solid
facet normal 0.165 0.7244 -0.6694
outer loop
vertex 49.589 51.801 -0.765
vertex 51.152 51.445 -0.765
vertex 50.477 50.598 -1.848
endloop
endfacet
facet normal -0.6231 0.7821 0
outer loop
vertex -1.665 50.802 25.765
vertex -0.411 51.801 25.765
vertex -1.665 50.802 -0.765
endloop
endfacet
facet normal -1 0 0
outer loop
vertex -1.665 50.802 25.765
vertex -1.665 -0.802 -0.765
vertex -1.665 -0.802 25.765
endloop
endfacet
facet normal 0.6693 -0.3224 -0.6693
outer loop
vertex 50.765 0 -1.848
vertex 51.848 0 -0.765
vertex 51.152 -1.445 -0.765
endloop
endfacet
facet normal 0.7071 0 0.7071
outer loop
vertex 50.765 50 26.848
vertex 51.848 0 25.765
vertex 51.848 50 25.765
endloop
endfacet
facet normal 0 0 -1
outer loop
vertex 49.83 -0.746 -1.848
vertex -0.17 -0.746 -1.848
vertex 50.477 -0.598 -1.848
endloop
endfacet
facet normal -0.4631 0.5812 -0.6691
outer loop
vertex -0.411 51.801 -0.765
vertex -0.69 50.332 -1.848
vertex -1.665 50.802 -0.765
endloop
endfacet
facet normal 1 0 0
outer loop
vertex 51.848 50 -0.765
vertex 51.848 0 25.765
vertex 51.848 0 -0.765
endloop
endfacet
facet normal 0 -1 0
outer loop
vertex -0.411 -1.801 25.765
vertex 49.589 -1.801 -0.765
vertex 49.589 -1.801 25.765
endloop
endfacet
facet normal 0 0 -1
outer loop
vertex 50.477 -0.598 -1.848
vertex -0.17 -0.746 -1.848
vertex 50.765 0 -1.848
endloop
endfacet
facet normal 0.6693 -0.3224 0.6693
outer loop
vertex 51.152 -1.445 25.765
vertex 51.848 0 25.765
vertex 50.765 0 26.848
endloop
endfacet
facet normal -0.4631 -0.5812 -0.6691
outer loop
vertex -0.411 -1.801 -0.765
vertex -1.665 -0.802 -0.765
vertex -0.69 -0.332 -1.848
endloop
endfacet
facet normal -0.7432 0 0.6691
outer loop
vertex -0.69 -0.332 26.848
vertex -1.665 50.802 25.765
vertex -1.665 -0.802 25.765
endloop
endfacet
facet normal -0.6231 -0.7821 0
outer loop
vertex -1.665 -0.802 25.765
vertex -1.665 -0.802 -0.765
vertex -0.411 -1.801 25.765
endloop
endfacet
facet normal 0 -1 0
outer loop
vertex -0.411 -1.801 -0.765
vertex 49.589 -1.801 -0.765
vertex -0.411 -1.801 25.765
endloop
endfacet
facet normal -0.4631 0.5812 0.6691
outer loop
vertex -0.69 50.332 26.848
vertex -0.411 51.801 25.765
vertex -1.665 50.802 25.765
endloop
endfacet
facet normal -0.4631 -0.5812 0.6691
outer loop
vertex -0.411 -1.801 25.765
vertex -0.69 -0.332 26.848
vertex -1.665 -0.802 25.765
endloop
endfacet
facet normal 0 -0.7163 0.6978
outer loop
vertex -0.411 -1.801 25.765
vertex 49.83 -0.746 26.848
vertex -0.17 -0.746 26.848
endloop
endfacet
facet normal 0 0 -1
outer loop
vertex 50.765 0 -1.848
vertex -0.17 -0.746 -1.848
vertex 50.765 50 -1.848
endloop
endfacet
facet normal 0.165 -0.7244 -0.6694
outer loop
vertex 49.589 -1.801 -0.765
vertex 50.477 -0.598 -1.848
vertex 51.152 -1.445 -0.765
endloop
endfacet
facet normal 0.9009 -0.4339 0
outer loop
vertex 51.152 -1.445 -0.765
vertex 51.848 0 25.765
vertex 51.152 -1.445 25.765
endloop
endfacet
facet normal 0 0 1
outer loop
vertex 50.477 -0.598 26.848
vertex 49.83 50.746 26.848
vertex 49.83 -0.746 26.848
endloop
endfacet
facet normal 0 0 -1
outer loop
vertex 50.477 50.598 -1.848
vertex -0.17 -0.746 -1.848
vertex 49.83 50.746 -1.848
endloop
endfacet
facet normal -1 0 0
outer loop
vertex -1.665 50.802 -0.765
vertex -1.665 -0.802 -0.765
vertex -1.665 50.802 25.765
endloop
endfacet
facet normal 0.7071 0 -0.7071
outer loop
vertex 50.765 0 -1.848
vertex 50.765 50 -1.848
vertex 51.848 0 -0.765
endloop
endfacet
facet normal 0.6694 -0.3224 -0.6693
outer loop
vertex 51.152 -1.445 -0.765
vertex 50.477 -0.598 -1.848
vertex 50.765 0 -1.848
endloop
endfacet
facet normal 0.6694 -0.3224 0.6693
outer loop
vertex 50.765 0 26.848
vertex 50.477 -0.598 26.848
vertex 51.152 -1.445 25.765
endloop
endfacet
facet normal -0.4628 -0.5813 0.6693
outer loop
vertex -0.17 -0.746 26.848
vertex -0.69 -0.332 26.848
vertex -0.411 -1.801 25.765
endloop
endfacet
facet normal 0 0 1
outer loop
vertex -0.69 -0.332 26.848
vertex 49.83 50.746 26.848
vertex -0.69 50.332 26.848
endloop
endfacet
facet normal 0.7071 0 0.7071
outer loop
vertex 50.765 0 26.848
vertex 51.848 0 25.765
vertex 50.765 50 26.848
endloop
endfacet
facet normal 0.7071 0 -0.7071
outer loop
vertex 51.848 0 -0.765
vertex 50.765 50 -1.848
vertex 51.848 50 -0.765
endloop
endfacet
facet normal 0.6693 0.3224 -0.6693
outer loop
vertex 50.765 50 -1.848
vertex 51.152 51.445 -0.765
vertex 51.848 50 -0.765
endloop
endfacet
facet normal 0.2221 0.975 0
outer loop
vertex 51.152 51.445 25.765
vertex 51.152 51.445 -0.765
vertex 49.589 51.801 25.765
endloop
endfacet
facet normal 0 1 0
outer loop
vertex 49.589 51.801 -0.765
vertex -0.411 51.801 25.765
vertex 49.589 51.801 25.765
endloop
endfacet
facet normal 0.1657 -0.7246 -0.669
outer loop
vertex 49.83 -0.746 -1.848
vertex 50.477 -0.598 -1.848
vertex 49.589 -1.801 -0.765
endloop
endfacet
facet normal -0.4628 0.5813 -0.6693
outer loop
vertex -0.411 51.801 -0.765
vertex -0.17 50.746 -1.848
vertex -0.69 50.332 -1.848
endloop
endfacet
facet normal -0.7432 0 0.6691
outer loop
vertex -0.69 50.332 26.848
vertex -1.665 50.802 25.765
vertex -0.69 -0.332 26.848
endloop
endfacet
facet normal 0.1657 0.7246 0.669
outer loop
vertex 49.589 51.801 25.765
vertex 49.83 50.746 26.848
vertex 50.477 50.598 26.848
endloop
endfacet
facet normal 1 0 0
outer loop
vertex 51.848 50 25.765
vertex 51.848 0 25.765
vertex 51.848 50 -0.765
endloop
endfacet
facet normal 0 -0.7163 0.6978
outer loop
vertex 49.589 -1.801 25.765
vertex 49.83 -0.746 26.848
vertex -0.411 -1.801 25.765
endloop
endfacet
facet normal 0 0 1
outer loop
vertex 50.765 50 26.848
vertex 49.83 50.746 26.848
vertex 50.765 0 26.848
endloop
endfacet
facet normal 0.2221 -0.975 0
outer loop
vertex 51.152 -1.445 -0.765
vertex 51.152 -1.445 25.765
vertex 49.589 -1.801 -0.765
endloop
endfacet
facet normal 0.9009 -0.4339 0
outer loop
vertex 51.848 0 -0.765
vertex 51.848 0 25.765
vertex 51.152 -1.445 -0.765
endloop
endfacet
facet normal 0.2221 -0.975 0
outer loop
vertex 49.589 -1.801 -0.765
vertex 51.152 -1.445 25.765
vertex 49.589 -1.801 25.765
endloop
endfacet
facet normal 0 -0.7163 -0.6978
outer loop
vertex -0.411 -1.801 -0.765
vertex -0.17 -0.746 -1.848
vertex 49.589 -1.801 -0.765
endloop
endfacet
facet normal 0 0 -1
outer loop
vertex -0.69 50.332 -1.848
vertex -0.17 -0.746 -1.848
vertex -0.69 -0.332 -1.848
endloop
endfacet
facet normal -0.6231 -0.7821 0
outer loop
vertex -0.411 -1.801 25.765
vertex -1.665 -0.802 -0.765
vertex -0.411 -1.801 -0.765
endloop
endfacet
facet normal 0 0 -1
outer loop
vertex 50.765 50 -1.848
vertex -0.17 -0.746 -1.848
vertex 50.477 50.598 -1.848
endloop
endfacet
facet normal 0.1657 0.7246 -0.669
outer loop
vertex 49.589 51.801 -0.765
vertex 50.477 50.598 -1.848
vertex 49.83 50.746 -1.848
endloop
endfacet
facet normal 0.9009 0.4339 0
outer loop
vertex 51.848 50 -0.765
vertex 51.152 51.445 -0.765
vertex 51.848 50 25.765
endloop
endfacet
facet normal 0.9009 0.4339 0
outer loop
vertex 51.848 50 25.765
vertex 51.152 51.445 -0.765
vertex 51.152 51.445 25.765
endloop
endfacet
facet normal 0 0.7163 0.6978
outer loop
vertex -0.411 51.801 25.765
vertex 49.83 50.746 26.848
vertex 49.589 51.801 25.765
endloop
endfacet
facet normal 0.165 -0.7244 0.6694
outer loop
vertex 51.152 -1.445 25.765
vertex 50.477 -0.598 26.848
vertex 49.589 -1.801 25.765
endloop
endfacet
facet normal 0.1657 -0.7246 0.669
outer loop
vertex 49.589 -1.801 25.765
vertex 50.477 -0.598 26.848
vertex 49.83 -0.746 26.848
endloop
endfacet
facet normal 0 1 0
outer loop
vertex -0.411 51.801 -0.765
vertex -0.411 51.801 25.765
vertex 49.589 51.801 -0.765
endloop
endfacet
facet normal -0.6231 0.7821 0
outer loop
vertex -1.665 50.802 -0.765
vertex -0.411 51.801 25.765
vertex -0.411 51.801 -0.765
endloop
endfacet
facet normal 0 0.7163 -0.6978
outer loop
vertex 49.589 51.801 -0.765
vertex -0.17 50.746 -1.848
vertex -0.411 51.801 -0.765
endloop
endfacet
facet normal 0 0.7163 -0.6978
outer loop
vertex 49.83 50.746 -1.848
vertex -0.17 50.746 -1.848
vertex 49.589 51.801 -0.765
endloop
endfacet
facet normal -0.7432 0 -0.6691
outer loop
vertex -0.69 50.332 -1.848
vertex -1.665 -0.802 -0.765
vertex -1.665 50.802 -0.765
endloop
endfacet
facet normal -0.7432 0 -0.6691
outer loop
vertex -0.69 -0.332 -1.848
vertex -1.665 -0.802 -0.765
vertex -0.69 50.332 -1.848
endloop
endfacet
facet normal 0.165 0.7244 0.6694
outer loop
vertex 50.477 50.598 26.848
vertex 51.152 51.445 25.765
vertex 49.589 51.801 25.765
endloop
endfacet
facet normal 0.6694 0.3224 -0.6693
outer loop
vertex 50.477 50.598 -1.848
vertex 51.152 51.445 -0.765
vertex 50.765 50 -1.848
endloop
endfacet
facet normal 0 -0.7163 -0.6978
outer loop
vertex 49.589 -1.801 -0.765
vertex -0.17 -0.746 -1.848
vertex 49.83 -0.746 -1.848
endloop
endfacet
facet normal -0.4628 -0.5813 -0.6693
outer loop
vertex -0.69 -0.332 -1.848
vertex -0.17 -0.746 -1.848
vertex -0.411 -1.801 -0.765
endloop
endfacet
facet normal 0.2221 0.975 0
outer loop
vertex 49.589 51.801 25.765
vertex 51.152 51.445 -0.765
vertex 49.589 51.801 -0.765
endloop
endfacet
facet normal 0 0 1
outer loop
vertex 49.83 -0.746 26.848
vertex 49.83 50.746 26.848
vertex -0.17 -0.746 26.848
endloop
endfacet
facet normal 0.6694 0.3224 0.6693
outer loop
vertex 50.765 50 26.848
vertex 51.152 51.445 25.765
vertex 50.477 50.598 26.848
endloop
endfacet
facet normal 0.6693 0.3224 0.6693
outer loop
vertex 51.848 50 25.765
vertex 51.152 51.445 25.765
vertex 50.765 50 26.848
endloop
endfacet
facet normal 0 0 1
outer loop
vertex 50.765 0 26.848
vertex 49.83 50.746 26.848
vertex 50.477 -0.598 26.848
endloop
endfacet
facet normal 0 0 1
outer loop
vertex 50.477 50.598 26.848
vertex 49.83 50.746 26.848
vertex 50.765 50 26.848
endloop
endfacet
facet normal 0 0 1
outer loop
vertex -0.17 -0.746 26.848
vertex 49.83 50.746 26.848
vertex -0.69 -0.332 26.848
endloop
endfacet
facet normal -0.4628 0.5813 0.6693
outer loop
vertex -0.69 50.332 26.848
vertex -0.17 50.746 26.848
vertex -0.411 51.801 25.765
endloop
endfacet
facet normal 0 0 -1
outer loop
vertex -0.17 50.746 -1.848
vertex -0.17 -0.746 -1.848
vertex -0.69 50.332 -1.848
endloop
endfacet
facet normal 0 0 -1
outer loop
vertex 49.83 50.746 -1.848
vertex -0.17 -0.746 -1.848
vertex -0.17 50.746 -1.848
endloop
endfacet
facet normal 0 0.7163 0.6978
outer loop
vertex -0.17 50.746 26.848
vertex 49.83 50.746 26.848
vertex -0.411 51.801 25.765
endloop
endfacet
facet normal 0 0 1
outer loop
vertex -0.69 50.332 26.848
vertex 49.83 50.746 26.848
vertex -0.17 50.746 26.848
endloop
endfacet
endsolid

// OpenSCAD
// Define dimensions for the base_block
base_block_length = 50;  // Length of the rectangular prism
base_block_width = 50;   // Width of the rectangular prism
base_block_height = 25;  // Adjusted height to match the original model

// Define corner radius for smoother edges
corner_radius = 2;  // Radius for rounded edges

// Create the base_block with rounded edges
translate([0, 0, 0]) {
    hull() {
        for (x = [0, base_block_length]) {
            for (y = [0, base_block_width]) {
                for (z = [0, base_block_height]) {
                    translate([x, y, z]) sphere(corner_radius);
                }
            }
        }
    }
}

// Ensure uniform orientation
// Removed unnecessary rotation to ensure the base block remains flat and aligned
// The base block is already aligned uniformly, so no rotation is applied
